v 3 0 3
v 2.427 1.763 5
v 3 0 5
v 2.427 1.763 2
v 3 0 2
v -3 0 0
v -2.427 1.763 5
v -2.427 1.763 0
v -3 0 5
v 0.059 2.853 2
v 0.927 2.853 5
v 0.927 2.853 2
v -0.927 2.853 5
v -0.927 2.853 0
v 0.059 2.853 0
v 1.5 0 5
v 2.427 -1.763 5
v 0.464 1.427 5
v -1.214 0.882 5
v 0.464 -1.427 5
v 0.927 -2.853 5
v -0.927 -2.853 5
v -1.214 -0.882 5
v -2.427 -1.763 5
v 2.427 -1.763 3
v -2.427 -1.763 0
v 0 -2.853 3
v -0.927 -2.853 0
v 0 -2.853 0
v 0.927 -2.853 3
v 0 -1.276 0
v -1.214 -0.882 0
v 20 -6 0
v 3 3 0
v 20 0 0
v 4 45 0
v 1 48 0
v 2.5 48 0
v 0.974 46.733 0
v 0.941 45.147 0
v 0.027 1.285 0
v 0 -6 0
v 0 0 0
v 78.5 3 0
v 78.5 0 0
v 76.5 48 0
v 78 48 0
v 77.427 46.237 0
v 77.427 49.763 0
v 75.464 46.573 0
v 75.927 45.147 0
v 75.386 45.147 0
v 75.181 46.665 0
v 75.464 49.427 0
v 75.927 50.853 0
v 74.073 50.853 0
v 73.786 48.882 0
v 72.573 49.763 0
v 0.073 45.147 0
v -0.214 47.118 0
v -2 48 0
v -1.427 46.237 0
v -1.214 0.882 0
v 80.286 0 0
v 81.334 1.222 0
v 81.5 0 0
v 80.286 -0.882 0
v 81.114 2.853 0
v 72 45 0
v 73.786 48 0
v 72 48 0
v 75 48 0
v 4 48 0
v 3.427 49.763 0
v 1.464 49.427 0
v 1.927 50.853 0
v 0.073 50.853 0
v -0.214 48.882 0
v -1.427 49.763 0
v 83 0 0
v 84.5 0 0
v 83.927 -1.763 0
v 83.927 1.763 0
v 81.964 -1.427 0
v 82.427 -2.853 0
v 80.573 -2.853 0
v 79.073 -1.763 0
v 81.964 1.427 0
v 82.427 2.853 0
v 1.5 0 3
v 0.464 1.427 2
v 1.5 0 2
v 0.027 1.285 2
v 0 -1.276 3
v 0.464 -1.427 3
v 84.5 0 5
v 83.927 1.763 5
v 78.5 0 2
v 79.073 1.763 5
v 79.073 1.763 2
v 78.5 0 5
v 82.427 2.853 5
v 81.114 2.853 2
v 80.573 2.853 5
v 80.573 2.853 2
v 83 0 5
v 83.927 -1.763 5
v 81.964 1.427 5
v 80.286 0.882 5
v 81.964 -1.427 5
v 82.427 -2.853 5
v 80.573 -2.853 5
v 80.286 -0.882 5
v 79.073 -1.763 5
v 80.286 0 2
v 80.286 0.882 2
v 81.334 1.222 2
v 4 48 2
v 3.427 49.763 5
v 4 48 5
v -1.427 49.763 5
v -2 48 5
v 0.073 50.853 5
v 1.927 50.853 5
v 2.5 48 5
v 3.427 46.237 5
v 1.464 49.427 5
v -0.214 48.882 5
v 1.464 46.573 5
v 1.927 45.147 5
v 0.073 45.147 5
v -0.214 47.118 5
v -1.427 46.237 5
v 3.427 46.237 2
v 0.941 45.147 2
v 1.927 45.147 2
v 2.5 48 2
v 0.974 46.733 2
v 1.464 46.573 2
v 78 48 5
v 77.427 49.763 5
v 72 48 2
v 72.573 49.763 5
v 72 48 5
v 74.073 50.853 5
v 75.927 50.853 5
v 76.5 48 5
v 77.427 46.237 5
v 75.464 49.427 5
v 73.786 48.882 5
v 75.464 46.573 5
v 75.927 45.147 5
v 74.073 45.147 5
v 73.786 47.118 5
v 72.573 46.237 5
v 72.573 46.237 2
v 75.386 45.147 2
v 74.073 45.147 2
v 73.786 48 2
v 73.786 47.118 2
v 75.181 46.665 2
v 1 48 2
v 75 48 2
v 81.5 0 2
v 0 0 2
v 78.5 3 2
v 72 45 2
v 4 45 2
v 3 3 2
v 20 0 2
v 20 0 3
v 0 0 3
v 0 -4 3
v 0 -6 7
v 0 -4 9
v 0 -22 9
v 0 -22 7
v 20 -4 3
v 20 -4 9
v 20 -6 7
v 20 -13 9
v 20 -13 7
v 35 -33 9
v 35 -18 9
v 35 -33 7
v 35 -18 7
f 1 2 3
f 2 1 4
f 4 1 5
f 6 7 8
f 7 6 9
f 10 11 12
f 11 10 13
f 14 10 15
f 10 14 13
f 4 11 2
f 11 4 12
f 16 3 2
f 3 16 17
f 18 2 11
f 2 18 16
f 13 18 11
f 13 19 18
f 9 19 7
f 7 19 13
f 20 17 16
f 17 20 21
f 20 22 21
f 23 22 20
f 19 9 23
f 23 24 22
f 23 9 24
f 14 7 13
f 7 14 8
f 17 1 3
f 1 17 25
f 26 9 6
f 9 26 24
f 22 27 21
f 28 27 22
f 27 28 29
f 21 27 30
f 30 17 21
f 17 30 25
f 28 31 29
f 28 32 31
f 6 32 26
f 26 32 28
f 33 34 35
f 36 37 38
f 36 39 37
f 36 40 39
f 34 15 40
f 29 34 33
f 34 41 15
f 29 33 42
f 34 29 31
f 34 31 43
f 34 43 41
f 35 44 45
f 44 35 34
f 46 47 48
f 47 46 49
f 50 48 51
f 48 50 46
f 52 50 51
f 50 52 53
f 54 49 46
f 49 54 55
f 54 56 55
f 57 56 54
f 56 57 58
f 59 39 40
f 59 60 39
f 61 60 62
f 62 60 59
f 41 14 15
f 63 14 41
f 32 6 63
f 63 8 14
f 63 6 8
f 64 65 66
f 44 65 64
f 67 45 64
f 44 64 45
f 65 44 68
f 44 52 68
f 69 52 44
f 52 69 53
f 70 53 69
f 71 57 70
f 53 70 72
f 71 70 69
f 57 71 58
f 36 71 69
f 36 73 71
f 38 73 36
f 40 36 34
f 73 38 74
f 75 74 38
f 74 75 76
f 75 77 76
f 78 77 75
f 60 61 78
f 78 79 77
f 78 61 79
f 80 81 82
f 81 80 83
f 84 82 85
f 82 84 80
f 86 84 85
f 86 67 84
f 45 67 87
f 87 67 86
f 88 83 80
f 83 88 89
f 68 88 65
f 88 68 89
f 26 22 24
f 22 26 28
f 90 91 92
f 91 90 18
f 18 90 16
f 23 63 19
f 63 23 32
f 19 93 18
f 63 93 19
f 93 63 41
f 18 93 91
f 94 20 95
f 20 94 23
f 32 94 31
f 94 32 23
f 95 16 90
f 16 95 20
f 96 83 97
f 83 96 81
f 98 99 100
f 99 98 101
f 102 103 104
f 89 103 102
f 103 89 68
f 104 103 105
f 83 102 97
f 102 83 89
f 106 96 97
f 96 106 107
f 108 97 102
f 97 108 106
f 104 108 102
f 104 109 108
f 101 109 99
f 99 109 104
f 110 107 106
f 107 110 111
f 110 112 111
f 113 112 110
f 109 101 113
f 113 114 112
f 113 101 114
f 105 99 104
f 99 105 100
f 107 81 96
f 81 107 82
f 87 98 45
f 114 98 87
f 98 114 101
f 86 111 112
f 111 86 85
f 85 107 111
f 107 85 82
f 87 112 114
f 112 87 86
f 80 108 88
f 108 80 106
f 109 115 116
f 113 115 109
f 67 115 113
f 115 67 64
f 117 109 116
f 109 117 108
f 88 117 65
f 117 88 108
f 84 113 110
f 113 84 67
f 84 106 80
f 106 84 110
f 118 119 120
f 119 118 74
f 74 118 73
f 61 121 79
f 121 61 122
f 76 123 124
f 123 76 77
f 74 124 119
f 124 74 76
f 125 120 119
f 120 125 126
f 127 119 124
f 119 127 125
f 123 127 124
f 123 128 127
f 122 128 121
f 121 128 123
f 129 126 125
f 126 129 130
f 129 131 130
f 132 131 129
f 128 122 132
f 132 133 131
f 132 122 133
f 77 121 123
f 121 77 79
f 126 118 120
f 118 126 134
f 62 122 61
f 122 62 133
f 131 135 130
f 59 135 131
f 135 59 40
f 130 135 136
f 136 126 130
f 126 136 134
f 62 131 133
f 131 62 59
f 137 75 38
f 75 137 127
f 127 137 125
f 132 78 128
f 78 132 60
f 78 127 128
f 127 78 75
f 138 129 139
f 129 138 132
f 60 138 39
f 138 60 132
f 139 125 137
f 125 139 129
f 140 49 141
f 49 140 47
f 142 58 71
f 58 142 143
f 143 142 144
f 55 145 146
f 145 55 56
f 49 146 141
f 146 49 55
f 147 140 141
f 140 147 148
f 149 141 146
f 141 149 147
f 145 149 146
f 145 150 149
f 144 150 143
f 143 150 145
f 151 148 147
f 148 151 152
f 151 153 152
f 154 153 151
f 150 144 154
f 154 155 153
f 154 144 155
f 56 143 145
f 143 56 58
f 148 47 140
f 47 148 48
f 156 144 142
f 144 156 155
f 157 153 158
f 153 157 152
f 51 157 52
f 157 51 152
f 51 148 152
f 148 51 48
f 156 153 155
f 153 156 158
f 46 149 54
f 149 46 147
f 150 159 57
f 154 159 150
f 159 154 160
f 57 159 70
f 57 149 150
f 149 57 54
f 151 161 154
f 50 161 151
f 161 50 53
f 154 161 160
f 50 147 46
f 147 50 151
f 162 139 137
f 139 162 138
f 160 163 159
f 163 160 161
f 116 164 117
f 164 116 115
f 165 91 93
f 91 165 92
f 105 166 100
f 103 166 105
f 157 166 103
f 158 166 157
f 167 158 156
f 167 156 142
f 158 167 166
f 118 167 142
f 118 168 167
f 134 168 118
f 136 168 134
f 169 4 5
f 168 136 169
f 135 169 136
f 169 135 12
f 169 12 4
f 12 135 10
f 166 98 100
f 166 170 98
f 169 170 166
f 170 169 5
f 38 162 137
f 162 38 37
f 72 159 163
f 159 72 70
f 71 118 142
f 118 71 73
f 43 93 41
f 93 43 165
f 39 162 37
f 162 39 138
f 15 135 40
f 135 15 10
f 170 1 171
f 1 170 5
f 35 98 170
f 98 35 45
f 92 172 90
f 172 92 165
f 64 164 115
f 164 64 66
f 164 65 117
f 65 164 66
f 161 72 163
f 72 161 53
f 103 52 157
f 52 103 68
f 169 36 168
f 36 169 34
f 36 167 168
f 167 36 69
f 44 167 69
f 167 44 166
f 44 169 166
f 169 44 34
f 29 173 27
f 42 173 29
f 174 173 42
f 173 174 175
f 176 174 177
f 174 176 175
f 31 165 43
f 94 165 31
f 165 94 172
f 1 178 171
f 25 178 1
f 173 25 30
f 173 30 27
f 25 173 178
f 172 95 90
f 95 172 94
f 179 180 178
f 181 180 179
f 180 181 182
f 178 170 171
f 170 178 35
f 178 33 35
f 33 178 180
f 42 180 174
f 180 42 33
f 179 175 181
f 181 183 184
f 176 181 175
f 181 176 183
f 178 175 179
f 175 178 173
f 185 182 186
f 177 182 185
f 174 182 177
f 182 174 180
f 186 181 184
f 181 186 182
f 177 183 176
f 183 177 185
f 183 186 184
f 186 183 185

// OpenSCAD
// file: lib/box.scad
xy = 113.6;
z = 51.2;
wall_width = 1.8;

//holes
hole_r = 5.9/2; 
hole_1 = [- 21.4, 0, -z /2];
hole_2 = [- 34.5, 0, -z /2];
hole_3 = [21.4, 0, -z /2];
hole_4 = [34.5, 0, -z /2];
hole_5 = [0, -21.4,-z /2];


//box();

module box(){
  scale_factor = (xy - wall_width * 2) / xy;

  echo(z/2 - wall_width);
  translate([0,0,z/2 - wall_width]){
    difference(){
      //shell
      cube([xy,xy,z], center=true);

      //negative space
      translate([0,0,wall_width]){
        difference(){
          scale([scale_factor, (xy - wall_width) / xy]){
            cube([xy,xy,z], center=true);
          }
          rotate([0,0,-27]){
            translate([-13,-38,-z/2 + wall_width]) cube([30,12,7], center=true);
          }
        }
      }

      //raised holes
      translate([-xy/2 + 19.5, -xy/2 + 32.68, -z/2 - wall_width]) cylinder(r=3.75/2, h=100);
      translate([-xy/2 + 35.2, -xy/2 + 25.3, -z/2 - wall_width]) cylinder(r=3.75/2, h=100);
      //screw holes
      translate(hole_1) cylinder(r=hole_r, wall_width);
      translate(hole_2) cylinder(r=hole_r, wall_width);
      translate(hole_3) cylinder(r=hole_r, wall_width);
      translate(hole_4) cylinder(r=hole_r, wall_width);
      translate(hole_5) cylinder(r=hole_r, wall_width);
    }
  }
}
// main file
include <lib/box.scad>

// Arduino Mega mounting holes are at [0,0],[81.5,0],[1,48],[75,48]
bl = [0,0,0]; //bottomleft
br = [81.5,0,0]; //bottomright
tl = [1,48,0]; //topleft
tr = [75,48,0]; //topright

standoff_height = 5;

//box();

//translate([-xy/2 + 10.5, -8,0]) frame();
frame();

module frame(){
  w = 3;
  arduino_points = [
    [bl[0],bl[1]], //0
    [br[0],br[1]], //1
    [tr[0],tr[1]], //2
    [tl[0],tl[1]], //3
    [bl[0]+w,bl[1]+w], //4
    [br[0]-w,br[1]+w], //5
    [tr[0]-w,tr[1]-w], //6
    [tl[0]+w,tl[1]-w]  //7
  ];

  anchor_points = [
    [0,-6],
    [0,-22],
    [35,-33],
    [35,-18],
    [20,-13],
    [20,-6]
  ];

  union(){
    translate(bl) standoff();
    translate(br) standoff();
    translate(tl) standoff();
    translate(tr) standoff();

    linear_extrude(height=2){
      polygon(arduino_points, paths=[[0,1,2,3], [4,5,6,7]], convexity=10);
    }

    translate([0,-6,0]) cube([20,6,3]);
    translate([0,-6,0]) cube([20,2,9]);

    translate([0,0,7]){
      linear_extrude(height=2){
        polygon(anchor_points, paths=[[0,1,2,3,4,5]]);
      }
    }
  }
}


module standoff(coordiantes){
  difference(){
    cylinder(r=3, h=standoff_height);
    cylinder(r=1.5,h=standoff_height);
  }
}
